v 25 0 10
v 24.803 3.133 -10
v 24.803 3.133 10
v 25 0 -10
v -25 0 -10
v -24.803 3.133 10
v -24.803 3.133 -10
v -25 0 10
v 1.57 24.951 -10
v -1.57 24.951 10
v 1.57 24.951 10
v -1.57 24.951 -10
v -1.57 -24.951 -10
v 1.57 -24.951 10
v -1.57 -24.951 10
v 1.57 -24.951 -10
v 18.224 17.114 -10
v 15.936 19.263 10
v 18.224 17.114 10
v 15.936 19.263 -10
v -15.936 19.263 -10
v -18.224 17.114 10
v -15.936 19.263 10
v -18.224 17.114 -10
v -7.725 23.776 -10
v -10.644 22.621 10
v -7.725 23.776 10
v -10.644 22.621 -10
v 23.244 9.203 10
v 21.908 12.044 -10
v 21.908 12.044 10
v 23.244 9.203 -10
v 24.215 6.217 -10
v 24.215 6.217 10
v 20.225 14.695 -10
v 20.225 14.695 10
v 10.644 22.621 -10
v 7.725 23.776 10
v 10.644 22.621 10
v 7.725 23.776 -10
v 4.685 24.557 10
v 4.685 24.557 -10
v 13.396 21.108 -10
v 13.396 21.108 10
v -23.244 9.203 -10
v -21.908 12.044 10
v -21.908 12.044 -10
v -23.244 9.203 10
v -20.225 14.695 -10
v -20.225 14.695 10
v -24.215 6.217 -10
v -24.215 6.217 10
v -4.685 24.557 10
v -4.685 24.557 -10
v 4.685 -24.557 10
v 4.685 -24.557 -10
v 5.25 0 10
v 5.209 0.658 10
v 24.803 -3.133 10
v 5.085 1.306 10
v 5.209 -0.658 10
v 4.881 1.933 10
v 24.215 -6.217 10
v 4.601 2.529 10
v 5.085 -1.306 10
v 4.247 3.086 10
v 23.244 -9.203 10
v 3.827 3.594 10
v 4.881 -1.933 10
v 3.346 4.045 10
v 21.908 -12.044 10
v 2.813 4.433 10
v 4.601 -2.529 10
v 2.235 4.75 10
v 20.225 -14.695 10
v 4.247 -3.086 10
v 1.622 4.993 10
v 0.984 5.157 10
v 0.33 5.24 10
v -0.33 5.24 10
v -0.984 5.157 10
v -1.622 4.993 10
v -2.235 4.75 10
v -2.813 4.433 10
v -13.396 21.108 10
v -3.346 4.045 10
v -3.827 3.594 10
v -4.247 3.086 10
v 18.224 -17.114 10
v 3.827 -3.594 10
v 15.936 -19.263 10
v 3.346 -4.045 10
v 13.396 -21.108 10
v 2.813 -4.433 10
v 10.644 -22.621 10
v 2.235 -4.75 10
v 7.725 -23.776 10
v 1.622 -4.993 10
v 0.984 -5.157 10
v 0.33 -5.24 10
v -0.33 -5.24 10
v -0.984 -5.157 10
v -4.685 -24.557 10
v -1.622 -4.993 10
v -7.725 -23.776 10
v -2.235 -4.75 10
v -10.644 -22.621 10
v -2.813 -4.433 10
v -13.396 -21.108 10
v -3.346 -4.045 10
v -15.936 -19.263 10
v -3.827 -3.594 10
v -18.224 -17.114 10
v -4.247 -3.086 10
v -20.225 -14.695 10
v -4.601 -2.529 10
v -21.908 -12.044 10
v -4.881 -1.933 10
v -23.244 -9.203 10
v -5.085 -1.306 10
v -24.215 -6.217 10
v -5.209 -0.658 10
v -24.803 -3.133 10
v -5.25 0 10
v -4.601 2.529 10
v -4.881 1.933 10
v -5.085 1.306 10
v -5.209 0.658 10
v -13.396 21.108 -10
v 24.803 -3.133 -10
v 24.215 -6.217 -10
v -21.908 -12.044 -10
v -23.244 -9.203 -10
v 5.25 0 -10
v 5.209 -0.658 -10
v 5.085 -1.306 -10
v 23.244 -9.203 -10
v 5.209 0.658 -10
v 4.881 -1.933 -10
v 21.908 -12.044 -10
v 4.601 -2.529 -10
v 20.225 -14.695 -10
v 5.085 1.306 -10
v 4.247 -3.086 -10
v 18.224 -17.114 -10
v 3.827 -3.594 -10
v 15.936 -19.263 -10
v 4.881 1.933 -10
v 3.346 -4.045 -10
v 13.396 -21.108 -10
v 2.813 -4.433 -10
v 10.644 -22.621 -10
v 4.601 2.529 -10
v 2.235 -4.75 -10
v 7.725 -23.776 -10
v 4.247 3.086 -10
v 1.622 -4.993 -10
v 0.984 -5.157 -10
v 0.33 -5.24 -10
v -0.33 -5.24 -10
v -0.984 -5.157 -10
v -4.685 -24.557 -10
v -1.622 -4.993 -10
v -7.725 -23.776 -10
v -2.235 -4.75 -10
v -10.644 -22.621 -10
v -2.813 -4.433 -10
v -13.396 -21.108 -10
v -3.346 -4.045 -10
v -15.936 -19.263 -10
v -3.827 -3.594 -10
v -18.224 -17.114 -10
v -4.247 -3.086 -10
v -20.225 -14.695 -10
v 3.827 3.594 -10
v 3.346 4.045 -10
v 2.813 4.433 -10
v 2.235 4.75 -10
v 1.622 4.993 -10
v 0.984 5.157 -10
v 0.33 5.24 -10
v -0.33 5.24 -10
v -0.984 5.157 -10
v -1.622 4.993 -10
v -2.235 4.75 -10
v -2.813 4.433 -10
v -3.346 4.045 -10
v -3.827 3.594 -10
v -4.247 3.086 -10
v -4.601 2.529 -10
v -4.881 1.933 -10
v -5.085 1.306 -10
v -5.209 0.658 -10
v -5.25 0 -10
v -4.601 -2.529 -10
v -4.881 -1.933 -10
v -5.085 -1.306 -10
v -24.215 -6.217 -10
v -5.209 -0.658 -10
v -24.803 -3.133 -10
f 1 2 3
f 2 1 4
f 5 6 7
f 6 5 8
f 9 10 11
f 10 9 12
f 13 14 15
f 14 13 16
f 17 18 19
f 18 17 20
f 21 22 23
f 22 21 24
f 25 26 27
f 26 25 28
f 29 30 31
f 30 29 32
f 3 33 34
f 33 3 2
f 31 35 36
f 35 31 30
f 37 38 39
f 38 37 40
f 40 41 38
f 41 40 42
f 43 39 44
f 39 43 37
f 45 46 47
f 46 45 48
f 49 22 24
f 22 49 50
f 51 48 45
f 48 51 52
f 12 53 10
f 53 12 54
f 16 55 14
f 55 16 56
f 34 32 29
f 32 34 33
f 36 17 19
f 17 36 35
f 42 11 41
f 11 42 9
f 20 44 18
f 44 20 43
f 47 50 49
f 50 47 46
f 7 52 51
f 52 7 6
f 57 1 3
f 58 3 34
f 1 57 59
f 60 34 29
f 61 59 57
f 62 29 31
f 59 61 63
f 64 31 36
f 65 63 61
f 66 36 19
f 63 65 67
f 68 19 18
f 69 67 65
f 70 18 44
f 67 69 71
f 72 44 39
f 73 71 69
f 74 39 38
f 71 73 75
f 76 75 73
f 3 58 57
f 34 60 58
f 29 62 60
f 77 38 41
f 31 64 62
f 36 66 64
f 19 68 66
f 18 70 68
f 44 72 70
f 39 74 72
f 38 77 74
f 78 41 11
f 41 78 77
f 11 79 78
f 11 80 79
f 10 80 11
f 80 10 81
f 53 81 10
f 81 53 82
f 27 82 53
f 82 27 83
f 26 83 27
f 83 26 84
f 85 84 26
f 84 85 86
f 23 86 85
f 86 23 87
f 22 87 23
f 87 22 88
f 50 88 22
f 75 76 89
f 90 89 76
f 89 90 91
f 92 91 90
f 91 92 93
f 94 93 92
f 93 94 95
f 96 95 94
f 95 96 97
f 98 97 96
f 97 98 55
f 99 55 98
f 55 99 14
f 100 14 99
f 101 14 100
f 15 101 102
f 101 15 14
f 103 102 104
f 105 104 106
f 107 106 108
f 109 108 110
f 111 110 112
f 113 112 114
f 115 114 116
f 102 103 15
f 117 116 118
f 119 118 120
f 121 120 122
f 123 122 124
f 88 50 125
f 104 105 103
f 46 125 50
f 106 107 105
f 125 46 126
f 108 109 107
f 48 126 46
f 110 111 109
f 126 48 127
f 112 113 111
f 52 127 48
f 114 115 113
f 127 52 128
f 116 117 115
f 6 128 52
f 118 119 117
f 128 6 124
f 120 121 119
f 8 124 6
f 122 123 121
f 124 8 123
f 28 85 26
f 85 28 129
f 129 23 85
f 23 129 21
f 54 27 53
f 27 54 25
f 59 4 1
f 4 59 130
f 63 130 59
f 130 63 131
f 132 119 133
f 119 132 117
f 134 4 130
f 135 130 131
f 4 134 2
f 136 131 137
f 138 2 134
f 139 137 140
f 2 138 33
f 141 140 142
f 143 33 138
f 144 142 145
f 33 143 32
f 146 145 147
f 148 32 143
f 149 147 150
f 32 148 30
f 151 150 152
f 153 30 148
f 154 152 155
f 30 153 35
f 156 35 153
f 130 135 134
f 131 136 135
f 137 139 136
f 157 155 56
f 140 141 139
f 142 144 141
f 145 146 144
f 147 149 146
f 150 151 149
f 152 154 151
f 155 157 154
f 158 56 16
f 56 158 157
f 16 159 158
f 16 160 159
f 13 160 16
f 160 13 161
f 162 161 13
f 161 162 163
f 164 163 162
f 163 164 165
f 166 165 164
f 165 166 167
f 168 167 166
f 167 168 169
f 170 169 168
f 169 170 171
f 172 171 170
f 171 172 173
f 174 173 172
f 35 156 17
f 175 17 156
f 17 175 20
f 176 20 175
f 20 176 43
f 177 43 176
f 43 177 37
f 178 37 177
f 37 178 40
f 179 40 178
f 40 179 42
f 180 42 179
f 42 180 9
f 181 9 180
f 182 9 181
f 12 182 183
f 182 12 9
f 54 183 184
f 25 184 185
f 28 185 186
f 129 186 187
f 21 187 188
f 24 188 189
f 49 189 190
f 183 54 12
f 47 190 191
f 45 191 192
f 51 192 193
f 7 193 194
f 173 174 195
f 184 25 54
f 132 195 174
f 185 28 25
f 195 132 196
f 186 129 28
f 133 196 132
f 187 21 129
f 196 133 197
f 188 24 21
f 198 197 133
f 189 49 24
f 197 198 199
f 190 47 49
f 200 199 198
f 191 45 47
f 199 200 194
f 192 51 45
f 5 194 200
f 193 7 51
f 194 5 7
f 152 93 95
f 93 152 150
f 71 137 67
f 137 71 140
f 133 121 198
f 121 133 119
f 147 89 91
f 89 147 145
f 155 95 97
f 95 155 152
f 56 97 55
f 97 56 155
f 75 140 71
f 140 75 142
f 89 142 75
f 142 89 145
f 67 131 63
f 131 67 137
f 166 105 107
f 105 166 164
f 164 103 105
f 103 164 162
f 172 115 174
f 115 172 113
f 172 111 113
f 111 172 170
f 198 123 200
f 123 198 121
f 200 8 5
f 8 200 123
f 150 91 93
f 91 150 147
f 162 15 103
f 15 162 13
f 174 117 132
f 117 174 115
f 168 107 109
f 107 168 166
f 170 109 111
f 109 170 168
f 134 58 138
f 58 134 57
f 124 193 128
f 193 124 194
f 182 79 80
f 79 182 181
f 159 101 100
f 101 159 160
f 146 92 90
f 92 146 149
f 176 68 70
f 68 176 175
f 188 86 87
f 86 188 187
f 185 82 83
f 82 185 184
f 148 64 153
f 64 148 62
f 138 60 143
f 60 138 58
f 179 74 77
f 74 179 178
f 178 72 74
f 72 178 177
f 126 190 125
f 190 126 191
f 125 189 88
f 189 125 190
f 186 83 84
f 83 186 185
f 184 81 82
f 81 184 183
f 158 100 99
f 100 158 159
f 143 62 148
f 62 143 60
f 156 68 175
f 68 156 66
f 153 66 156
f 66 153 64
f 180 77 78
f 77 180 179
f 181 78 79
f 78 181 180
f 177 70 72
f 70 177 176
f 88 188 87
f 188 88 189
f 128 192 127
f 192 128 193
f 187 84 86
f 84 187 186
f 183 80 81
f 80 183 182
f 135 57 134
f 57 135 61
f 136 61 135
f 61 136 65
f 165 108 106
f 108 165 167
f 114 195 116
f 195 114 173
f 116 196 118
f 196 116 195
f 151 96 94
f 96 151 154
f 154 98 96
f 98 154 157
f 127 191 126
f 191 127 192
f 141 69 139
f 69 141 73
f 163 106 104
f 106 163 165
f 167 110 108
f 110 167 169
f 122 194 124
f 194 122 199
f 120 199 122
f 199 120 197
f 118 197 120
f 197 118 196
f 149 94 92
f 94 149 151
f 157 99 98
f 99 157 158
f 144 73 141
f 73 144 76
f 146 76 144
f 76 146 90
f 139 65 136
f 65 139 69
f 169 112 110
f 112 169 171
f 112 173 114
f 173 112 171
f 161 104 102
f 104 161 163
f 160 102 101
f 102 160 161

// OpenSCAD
$fn = 50;


difference() {
	union() {
		translate(v = [0, 0, -10.0000000000]) {
			cylinder(h = 20, r = 25.0000000000);
		}
	}
	union() {
		translate(v = [0, 0, -100.0000000000]) {
			cylinder(h = 200, r = 5.2500000000);
		}
	}
}
